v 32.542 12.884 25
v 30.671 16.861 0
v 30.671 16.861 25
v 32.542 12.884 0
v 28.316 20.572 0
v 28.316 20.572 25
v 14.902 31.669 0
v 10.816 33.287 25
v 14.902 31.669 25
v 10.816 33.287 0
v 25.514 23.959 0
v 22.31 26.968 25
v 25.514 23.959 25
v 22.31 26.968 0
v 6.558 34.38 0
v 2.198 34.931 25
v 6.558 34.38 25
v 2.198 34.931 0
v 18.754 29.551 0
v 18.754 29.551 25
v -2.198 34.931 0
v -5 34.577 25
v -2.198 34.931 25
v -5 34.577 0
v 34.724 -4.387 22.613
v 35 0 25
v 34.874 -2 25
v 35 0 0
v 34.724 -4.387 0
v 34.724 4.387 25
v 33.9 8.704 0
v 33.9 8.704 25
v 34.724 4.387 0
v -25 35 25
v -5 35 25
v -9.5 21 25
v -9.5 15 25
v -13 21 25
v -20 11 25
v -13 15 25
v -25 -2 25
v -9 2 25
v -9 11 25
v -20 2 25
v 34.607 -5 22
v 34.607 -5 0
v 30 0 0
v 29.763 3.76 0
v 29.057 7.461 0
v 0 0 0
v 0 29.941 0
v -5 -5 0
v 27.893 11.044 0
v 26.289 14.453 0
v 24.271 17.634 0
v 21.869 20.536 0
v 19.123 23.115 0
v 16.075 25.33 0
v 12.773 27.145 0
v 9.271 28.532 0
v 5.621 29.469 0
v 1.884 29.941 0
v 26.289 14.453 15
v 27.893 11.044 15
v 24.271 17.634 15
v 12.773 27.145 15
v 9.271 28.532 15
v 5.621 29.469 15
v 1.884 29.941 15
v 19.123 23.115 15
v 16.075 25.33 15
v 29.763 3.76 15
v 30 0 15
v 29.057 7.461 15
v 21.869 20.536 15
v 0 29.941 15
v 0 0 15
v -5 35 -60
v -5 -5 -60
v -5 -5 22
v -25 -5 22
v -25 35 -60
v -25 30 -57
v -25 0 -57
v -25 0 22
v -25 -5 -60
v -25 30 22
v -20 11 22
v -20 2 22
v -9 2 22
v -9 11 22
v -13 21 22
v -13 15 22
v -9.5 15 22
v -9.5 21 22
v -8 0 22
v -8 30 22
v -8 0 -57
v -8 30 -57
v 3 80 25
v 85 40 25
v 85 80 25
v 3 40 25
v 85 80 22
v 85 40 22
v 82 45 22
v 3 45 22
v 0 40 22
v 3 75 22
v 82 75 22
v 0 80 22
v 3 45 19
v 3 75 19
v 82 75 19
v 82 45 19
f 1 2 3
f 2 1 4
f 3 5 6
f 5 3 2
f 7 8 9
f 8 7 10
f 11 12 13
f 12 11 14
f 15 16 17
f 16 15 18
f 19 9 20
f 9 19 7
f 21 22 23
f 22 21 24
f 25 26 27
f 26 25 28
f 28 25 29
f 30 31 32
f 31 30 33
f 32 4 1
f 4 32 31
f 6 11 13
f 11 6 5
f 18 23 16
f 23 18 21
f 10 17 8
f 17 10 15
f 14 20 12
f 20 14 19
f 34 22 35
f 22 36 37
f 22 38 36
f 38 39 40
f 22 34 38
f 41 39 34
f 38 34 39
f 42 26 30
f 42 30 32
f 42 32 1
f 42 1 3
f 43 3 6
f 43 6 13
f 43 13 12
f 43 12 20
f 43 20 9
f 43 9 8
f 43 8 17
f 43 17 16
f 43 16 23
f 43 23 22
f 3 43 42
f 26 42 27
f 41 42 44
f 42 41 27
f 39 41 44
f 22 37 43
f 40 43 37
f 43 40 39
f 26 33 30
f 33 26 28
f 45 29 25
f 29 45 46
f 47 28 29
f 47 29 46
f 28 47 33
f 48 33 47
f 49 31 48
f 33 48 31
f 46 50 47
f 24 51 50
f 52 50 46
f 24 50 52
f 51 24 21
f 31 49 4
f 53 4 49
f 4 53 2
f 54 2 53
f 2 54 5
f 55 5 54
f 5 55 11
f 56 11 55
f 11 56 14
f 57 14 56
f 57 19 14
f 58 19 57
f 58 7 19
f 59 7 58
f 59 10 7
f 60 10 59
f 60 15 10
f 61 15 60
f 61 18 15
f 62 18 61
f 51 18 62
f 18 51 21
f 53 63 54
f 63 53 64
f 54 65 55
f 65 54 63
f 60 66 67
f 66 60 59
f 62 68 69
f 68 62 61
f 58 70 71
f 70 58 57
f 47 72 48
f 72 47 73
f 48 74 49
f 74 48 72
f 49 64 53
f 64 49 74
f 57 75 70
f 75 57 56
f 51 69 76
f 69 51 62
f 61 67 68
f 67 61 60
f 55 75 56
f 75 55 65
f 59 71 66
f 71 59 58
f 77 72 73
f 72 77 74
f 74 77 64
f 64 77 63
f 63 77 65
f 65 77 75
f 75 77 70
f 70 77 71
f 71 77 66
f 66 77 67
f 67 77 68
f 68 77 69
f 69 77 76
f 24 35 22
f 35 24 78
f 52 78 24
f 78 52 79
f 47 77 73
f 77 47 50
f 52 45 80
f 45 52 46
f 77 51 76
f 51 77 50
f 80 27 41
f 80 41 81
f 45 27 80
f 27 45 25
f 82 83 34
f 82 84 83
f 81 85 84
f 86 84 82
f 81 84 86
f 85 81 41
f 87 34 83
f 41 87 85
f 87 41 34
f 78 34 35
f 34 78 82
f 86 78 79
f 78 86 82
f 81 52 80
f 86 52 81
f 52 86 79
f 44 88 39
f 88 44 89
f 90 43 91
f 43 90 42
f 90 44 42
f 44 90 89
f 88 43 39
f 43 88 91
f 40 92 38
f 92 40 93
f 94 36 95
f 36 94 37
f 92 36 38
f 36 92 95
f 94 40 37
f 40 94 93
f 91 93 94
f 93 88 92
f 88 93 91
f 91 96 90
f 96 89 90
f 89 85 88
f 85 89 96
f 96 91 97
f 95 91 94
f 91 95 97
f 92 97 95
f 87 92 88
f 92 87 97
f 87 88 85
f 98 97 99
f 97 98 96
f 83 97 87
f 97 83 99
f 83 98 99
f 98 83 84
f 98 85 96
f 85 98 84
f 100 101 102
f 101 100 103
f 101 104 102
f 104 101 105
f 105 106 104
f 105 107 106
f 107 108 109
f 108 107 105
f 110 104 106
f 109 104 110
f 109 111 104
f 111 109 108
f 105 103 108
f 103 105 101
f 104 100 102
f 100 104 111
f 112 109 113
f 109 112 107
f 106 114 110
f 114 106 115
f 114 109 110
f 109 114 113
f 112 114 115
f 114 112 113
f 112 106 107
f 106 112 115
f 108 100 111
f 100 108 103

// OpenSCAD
// batten end cap
// **************************

side      = 30;
sidethick = 5;
endthick = 10;
overlap=15;
boxht=20;
boxlen=85;
boxwall=3;
$fn=50;


difference () {
    union () {
 //top
       difference () {
       
       translate ([0,0,0]) cylinder(h=overlap+endthick,r=side+sidethick);
       translate ([0,0,0]) cylinder(h=overlap,r=side);
       }
 
 //sides
       
       union () {
       translate ([-sidethick,-sidethick,0]) cube([side+sidethick,sidethick,overlap+endthick]);
       translate ([-sidethick,0,0]) cube([sidethick,side,overlap+endthick]);
       }


 
   }
   
   translate ([-(side+sidethick*2),-sidethick-side,0]) cube([side+sidethick,side*2+sidethick*2,overlap+endthick+5]);

   translate ([-(side+sidethick),-sidethick*2-side,0]) cube([side*2+sidethick*2,side+sidethick,overlap+endthick+5]);


   translate ([-side,-sidethick,overlap+endthick-3]) rotate([45,0,0]) cube([side*3,10,10]);


}


   
//box
difference () {   

translate ([-boxht-sidethick,-sidethick,-boxlen+overlap+endthick]) cube ([boxht,side+sidethick*2,boxlen]);

   //chamfer
    translate ([-side-boxht,-sidethick,overlap+endthick-3]) rotate([45,0,0]) cube([side*3,10,10]);

    
   //dc skt
    translate ([-20,2,overlap]) cube ([11,9,20]);

   //switch
    translate ([-13,15,overlap]) cube ([3.5,6,20]);

    
   //pcb 30x75
    translate ([-boxht-sidethick-boxwall,0,-boxlen+overlap+endthick+boxwall]) cube ([boxht,30,boxlen-boxwall*2]);


}

//lid

difference () {

    union () {
    translate ([0,40,overlap+endthick-3]) cube ([boxlen,side+sidethick*2,3]);

    translate ([boxwall,40+sidethick,overlap+endthick-6]) cube ([boxlen-boxwall*2,30,3]);

    }

    //chamfer
    translate ([0,40,overlap+endthick-3]) rotate([45,0,90]) cube([side*3,10,10]);


}
